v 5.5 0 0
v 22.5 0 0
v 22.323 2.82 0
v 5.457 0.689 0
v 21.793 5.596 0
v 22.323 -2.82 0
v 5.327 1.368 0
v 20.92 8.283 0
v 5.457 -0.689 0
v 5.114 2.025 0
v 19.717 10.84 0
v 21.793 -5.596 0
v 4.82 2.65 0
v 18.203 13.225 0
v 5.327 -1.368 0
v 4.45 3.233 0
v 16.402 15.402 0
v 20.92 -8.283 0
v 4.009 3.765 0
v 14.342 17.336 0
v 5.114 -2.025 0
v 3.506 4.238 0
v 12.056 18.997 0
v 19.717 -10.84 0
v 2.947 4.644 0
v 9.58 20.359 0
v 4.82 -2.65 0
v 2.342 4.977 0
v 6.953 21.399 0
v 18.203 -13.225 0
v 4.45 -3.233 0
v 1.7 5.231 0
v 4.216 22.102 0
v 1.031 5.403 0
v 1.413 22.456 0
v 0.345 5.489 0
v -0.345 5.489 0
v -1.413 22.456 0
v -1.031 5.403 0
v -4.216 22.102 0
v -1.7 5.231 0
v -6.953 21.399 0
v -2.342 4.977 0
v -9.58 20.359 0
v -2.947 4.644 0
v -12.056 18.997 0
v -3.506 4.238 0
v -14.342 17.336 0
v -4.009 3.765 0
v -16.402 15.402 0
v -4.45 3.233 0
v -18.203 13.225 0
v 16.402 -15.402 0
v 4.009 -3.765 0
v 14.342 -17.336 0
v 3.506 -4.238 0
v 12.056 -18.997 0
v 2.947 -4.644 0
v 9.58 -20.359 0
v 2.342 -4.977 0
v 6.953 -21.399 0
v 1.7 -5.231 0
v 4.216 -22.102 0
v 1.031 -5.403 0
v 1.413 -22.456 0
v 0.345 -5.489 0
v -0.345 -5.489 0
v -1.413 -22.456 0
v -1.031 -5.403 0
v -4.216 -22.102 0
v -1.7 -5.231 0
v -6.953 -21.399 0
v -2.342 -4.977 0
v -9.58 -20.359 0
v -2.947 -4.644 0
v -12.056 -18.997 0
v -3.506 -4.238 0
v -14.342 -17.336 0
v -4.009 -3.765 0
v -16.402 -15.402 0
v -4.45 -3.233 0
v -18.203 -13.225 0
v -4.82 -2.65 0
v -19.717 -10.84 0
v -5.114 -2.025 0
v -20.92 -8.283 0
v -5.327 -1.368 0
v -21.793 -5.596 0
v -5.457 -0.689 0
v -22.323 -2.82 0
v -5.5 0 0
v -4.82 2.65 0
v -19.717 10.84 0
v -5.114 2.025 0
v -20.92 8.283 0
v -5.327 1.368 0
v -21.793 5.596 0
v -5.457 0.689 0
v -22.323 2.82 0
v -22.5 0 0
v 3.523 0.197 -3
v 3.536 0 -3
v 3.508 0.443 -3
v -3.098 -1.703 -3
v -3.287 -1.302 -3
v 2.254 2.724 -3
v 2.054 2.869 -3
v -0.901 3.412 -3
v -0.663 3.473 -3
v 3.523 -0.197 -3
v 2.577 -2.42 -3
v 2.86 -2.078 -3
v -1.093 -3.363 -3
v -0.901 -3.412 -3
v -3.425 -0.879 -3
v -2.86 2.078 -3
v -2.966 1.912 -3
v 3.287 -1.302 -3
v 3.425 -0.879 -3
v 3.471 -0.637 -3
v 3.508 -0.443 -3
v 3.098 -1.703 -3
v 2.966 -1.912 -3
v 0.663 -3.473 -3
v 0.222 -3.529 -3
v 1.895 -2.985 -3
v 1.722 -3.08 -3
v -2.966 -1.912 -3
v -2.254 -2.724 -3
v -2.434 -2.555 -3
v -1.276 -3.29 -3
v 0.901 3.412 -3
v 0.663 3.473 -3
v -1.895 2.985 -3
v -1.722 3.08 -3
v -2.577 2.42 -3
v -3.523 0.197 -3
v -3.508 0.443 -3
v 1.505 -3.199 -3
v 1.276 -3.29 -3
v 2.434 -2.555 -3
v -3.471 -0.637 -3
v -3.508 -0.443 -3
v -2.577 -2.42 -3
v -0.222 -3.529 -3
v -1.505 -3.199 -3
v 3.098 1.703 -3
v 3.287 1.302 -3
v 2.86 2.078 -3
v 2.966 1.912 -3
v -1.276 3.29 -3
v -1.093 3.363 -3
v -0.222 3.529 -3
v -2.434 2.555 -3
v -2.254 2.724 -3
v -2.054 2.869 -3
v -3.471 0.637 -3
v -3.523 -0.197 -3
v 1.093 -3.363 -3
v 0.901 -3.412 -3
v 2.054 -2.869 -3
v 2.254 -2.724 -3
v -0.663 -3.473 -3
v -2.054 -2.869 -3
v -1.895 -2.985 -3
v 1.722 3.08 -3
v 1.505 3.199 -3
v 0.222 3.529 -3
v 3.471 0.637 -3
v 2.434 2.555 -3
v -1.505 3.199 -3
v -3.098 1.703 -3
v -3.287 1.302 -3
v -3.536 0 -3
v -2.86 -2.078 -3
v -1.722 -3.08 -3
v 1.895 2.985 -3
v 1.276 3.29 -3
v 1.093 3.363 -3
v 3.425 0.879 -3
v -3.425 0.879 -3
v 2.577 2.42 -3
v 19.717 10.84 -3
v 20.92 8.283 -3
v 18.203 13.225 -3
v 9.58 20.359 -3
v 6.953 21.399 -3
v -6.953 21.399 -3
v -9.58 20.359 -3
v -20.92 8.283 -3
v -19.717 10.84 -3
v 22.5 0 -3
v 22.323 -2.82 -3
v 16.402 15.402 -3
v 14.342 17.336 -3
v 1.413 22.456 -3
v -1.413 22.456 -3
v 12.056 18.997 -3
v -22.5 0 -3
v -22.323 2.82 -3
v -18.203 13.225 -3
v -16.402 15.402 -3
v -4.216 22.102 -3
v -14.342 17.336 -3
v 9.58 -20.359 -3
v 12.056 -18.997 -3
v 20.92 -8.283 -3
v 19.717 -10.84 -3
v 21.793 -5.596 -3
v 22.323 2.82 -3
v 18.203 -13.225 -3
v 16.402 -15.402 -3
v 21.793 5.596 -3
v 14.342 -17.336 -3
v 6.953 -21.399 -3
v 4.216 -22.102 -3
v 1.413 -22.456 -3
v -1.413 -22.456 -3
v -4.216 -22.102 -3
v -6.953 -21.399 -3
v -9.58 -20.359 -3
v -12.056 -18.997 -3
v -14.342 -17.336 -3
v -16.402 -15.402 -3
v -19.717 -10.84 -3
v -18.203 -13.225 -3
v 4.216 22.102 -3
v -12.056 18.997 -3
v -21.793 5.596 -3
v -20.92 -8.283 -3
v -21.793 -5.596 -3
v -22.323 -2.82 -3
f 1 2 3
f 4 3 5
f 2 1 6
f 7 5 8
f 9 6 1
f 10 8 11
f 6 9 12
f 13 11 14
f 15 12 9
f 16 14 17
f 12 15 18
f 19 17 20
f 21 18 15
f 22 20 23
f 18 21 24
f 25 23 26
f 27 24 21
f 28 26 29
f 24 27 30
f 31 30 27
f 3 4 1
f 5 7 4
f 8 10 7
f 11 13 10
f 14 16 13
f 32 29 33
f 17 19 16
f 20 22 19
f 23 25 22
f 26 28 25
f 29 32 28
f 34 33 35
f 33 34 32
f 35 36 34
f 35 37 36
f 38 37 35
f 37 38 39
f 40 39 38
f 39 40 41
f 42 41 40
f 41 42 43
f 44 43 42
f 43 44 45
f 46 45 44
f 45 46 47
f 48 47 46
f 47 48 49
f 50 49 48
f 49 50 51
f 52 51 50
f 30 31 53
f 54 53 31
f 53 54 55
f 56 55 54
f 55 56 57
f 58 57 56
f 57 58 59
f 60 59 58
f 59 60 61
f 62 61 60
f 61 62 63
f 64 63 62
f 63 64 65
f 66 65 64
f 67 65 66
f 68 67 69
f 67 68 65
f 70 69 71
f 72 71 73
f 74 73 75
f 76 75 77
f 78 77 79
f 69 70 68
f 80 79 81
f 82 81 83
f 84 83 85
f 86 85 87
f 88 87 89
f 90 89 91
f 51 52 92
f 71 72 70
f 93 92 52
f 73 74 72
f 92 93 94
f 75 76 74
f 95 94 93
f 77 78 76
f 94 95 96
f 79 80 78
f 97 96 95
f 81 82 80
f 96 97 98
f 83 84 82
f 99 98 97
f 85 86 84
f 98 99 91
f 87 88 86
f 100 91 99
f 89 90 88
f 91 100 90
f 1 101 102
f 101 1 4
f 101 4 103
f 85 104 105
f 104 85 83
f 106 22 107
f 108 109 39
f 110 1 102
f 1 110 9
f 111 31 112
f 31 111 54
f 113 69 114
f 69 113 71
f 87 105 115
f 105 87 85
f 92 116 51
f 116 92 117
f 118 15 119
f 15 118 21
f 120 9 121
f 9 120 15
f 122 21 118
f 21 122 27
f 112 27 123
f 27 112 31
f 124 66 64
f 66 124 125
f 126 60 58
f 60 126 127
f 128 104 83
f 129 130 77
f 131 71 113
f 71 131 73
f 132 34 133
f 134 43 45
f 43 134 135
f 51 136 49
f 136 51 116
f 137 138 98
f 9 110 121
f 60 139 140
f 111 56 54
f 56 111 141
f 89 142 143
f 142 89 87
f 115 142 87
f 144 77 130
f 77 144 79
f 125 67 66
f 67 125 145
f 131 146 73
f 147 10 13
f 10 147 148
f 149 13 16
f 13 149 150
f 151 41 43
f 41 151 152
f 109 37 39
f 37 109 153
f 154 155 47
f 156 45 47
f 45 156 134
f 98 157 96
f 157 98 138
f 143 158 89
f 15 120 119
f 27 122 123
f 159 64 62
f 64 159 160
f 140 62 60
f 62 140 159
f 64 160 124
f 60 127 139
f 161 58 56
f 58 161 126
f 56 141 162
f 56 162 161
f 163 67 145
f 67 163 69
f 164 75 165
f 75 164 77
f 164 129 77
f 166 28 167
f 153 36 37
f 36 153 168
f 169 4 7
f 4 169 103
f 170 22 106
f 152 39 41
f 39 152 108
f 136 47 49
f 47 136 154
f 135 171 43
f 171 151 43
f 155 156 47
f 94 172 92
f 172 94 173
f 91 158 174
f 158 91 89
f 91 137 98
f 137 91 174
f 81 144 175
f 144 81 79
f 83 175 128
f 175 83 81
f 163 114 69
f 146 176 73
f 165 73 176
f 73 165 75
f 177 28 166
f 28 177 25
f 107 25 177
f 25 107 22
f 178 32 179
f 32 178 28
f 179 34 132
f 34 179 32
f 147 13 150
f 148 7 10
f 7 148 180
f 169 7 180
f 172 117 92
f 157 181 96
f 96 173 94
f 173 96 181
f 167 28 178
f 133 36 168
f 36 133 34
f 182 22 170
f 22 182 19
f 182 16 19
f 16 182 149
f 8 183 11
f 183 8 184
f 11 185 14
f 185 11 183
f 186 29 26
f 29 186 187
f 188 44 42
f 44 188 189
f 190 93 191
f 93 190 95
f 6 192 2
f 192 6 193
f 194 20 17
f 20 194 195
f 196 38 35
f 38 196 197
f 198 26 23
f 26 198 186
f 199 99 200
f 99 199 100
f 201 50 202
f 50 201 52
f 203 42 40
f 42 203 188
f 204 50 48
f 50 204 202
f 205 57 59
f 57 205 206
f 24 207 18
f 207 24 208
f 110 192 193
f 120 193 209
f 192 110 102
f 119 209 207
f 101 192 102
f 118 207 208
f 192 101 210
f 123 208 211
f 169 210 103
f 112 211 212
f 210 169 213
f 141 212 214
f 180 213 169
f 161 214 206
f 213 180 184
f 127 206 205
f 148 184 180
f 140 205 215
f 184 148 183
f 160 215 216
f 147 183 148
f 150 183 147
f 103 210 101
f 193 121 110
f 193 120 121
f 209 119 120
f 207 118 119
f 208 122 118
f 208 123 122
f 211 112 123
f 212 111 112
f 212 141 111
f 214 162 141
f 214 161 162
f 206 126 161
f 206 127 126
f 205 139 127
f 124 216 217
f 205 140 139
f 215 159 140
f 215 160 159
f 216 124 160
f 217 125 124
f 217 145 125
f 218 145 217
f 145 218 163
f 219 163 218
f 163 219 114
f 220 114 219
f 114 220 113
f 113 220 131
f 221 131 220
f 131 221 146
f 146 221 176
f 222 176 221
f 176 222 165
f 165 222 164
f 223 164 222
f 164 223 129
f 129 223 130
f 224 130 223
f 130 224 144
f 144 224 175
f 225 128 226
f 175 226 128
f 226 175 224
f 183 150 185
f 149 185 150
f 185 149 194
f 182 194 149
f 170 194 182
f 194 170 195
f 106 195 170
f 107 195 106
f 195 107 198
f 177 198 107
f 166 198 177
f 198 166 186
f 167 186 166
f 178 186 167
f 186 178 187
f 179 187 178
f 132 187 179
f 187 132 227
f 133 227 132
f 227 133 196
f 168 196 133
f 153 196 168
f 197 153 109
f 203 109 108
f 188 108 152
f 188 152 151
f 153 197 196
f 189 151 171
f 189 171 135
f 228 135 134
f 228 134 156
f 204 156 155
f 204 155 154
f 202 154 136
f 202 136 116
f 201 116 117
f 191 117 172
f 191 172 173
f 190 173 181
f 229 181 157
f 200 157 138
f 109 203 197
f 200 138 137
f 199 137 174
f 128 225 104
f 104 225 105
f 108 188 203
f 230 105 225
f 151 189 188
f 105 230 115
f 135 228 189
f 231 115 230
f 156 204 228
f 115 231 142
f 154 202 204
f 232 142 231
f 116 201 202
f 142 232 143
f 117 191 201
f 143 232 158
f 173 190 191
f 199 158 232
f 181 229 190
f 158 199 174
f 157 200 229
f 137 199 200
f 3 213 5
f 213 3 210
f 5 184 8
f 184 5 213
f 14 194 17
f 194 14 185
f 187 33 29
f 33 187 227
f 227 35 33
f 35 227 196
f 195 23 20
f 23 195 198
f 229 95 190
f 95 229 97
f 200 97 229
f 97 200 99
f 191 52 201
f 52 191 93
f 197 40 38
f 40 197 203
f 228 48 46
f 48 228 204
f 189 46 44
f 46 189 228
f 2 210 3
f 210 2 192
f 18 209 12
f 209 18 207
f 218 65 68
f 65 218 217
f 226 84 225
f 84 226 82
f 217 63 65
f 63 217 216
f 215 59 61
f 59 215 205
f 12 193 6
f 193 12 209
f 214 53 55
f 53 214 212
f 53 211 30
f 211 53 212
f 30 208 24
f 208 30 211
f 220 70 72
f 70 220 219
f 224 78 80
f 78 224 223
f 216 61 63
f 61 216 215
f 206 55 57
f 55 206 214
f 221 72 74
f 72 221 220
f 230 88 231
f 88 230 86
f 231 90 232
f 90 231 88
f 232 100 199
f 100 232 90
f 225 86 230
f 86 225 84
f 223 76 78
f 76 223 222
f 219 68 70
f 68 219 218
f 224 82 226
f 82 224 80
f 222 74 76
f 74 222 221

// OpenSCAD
$fn = 50;


difference() {
	union() {
		translate(v = [0, 0, -3.0000000000]) {
			cylinder(h = 3, r = 22.5000000000);
		}
	}
	union() {
		translate(v = [0, 0, 0]) {
			rotate(a = [0, 0, 0]) {
				difference() {
					union() {
						translate(v = [0, 0, -6.0000000000]) {
							cylinder(h = 6, r = 2.2500000000);
						}
						translate(v = [0, 0, -4.2000000000]) {
							cylinder(h = 4.2000000000, r1 = 2.7500000000, r2 = 5.5000000000);
						}
						translate(v = [0, 0, -6.0000000000]) {
							cylinder(h = 6, r = 2.7500000000);
						}
						translate(v = [0, 0, -6.0000000000]) {
							cylinder(h = 6, r = 2.2500000000);
						}
					}
					union();
				}
			}
		}
	}
}
